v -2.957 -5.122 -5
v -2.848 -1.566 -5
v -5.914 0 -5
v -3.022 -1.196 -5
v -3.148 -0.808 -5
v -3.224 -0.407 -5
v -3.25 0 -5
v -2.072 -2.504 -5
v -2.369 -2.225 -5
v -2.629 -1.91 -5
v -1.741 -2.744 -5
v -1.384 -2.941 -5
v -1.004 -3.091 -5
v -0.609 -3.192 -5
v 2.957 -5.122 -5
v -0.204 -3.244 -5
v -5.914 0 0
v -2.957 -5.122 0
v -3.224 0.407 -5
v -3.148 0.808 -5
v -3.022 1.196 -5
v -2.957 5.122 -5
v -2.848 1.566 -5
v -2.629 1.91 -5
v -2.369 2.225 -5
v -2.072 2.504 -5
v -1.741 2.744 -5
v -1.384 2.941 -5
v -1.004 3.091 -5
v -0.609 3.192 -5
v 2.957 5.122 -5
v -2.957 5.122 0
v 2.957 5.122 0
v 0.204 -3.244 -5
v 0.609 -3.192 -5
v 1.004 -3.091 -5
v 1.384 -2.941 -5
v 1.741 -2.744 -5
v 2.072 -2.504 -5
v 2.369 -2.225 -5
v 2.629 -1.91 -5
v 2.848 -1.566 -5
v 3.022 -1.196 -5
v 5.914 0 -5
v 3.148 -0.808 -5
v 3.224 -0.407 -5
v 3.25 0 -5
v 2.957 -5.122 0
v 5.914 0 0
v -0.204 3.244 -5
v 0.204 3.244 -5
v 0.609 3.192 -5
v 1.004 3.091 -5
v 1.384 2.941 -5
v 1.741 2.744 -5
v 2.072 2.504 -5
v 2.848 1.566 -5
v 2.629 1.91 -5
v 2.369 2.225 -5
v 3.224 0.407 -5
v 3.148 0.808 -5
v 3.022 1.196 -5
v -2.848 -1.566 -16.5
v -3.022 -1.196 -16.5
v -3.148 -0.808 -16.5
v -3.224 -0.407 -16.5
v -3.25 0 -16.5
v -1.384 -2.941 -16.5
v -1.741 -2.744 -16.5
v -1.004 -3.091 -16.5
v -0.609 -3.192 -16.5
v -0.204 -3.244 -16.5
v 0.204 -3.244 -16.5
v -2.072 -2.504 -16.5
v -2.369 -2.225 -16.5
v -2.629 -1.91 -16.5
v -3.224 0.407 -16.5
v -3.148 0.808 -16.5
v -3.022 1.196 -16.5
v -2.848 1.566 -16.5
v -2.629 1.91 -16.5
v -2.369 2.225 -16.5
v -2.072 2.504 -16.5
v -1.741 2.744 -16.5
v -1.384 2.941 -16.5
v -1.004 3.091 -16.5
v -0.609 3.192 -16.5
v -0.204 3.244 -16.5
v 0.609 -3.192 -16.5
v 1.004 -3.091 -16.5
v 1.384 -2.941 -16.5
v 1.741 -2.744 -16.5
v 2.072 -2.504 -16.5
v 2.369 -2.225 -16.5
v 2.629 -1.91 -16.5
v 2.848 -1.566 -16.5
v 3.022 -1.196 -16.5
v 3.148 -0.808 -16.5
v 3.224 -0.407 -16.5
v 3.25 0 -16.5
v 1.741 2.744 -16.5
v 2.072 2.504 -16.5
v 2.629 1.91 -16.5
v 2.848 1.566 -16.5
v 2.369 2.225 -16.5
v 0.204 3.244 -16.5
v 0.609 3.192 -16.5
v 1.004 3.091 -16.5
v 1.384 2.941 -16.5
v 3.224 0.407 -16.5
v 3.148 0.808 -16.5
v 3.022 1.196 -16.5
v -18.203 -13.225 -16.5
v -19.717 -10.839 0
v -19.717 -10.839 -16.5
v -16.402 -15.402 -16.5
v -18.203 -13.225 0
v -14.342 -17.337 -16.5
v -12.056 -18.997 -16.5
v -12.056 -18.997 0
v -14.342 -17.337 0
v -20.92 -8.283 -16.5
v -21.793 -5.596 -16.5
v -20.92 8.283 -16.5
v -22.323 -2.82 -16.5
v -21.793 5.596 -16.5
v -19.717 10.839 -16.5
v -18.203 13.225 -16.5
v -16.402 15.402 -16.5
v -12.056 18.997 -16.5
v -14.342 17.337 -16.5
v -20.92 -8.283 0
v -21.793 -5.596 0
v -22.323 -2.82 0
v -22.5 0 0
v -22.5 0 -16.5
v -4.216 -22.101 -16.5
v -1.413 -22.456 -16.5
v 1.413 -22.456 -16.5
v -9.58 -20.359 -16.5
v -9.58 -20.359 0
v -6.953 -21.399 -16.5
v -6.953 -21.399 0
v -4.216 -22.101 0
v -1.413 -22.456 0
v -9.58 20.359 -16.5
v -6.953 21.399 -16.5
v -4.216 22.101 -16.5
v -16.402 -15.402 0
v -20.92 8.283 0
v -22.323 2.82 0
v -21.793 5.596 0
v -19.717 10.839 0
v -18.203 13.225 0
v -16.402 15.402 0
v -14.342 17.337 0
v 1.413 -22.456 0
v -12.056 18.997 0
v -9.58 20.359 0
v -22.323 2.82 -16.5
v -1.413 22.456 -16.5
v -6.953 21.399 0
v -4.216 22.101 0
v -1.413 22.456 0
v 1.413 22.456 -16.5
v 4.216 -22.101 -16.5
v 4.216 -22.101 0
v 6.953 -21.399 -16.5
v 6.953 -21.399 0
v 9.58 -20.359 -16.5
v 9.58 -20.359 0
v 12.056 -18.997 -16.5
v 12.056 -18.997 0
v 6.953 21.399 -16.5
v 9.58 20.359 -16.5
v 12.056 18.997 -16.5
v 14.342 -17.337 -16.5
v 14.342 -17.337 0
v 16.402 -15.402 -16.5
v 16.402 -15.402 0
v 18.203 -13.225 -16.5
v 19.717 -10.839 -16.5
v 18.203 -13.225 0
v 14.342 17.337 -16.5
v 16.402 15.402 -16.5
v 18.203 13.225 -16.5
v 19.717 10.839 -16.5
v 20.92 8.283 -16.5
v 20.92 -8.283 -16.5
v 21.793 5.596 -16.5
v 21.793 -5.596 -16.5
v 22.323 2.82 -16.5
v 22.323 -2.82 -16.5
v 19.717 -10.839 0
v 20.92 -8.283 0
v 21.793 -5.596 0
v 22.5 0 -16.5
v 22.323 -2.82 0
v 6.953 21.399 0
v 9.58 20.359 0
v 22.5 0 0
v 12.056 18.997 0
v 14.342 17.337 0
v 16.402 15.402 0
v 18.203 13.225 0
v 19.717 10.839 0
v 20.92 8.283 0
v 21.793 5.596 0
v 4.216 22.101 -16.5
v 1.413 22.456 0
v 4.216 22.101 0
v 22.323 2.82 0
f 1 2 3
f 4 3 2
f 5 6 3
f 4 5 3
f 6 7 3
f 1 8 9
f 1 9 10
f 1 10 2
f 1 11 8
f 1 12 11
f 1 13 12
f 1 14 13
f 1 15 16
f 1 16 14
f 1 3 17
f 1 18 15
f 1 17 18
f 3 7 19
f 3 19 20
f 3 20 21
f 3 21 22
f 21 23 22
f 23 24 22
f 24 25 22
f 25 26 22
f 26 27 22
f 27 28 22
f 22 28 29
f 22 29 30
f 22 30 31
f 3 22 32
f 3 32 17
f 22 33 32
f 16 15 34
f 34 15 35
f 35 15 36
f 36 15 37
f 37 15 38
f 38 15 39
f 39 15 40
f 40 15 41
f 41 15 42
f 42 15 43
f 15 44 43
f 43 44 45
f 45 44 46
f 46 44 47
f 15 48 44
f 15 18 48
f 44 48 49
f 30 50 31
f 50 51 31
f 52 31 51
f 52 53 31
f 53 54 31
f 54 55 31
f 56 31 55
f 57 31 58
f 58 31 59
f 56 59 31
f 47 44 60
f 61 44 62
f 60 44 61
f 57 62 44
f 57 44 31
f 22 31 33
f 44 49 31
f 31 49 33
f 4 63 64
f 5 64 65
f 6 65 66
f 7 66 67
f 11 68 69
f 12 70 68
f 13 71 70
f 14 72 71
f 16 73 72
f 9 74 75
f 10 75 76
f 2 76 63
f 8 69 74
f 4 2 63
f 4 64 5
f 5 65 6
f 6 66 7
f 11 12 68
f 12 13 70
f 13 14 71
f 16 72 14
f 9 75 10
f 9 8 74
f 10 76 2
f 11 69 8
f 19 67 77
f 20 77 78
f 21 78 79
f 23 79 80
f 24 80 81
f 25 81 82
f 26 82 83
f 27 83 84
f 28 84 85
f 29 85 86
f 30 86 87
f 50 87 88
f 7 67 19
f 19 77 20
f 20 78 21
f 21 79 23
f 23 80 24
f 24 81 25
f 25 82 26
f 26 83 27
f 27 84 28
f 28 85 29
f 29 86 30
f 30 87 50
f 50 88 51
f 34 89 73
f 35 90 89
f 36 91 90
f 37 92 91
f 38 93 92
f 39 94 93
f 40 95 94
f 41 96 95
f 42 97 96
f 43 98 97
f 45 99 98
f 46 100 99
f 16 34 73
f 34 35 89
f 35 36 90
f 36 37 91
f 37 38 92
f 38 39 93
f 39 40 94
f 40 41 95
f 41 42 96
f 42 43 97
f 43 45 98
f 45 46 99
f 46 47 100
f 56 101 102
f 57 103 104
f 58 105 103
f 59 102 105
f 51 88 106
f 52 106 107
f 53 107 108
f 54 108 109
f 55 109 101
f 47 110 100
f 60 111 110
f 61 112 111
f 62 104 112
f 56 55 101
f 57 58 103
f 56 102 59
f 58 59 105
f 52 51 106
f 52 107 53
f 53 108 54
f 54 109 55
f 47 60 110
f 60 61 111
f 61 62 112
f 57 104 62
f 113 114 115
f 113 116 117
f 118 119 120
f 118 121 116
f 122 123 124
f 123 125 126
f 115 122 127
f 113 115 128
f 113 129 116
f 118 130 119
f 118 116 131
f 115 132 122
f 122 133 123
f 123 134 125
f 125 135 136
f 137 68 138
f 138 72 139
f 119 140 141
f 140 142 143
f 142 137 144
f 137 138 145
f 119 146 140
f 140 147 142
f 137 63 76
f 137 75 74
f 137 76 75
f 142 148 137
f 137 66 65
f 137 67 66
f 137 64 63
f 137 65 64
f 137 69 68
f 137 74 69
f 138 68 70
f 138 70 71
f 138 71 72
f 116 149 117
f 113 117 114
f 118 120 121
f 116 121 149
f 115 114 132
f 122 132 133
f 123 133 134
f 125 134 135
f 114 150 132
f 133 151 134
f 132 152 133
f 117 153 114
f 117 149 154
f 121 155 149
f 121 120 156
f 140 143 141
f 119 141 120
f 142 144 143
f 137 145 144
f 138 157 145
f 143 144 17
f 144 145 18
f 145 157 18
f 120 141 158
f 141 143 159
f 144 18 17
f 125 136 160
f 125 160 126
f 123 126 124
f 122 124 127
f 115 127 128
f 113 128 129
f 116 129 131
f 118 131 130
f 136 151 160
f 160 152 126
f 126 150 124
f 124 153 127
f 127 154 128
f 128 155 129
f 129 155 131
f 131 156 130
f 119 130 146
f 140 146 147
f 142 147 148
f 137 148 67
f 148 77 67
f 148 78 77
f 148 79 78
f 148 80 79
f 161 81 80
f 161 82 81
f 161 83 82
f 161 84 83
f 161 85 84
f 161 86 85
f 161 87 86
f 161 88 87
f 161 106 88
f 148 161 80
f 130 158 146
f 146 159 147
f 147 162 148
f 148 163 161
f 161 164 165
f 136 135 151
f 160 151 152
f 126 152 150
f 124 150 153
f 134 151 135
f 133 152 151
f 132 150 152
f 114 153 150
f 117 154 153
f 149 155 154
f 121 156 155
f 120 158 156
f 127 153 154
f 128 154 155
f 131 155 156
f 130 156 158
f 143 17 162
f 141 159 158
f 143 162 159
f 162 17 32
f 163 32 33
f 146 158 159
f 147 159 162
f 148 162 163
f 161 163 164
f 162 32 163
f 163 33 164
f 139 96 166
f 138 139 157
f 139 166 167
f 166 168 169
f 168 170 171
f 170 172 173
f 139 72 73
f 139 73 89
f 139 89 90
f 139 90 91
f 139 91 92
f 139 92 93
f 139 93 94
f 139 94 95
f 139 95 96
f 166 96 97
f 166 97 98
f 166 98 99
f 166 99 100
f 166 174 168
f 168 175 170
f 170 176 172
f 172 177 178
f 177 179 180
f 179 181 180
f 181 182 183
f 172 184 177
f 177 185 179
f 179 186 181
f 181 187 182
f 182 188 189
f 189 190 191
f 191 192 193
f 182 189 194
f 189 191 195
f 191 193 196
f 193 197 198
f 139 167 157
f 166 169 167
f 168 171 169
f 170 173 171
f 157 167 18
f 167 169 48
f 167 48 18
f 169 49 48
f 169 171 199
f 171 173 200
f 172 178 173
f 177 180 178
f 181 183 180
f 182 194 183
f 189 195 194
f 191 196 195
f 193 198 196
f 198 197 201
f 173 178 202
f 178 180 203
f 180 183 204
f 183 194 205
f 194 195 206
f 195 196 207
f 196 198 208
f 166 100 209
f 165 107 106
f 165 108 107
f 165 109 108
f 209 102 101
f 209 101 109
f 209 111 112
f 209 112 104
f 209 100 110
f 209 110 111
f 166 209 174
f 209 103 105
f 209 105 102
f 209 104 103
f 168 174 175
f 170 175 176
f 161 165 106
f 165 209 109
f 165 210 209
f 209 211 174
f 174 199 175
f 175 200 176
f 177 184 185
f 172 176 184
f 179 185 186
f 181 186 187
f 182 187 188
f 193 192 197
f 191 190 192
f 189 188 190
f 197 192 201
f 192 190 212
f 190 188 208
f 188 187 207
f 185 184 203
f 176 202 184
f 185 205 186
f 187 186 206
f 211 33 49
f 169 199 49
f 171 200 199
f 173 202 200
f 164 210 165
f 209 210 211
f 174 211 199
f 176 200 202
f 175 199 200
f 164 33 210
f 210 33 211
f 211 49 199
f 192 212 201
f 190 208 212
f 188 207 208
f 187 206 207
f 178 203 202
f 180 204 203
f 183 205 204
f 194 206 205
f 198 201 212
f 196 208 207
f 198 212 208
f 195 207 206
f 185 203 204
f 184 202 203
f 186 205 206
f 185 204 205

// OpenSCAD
$fn = 50;

difference() {
	union() {
		translate(v = [0, 0, -16.5]) {
			cylinder(h = 16.5, r = 22.5);
		}
	}
	union() {
		translate(v = [0, 0, 0]) {
			rotate(a = [0, 0, 0]) {
				difference() {
					union() {
						translate(v = [0, 0, -5]) {
							linear_extrude(height = 5) {
								polygon(points = [[5.914249999999999, 0.0], [2.957125, 5.1218907443321156], [-2.9571249999999982, 5.1218907443321156], [-5.914249999999999, 7.242867331857232e-16], [-2.9571250000000022, -5.121890744332115], [2.9571249999999956, -5.121890744332118]]);
							}
						}
					}
					union();
				}
			}
		}
		#translate(v = [0, 0, -100.0]) {
			cylinder(h = 200, r = 3.25);
		}
	}
}
